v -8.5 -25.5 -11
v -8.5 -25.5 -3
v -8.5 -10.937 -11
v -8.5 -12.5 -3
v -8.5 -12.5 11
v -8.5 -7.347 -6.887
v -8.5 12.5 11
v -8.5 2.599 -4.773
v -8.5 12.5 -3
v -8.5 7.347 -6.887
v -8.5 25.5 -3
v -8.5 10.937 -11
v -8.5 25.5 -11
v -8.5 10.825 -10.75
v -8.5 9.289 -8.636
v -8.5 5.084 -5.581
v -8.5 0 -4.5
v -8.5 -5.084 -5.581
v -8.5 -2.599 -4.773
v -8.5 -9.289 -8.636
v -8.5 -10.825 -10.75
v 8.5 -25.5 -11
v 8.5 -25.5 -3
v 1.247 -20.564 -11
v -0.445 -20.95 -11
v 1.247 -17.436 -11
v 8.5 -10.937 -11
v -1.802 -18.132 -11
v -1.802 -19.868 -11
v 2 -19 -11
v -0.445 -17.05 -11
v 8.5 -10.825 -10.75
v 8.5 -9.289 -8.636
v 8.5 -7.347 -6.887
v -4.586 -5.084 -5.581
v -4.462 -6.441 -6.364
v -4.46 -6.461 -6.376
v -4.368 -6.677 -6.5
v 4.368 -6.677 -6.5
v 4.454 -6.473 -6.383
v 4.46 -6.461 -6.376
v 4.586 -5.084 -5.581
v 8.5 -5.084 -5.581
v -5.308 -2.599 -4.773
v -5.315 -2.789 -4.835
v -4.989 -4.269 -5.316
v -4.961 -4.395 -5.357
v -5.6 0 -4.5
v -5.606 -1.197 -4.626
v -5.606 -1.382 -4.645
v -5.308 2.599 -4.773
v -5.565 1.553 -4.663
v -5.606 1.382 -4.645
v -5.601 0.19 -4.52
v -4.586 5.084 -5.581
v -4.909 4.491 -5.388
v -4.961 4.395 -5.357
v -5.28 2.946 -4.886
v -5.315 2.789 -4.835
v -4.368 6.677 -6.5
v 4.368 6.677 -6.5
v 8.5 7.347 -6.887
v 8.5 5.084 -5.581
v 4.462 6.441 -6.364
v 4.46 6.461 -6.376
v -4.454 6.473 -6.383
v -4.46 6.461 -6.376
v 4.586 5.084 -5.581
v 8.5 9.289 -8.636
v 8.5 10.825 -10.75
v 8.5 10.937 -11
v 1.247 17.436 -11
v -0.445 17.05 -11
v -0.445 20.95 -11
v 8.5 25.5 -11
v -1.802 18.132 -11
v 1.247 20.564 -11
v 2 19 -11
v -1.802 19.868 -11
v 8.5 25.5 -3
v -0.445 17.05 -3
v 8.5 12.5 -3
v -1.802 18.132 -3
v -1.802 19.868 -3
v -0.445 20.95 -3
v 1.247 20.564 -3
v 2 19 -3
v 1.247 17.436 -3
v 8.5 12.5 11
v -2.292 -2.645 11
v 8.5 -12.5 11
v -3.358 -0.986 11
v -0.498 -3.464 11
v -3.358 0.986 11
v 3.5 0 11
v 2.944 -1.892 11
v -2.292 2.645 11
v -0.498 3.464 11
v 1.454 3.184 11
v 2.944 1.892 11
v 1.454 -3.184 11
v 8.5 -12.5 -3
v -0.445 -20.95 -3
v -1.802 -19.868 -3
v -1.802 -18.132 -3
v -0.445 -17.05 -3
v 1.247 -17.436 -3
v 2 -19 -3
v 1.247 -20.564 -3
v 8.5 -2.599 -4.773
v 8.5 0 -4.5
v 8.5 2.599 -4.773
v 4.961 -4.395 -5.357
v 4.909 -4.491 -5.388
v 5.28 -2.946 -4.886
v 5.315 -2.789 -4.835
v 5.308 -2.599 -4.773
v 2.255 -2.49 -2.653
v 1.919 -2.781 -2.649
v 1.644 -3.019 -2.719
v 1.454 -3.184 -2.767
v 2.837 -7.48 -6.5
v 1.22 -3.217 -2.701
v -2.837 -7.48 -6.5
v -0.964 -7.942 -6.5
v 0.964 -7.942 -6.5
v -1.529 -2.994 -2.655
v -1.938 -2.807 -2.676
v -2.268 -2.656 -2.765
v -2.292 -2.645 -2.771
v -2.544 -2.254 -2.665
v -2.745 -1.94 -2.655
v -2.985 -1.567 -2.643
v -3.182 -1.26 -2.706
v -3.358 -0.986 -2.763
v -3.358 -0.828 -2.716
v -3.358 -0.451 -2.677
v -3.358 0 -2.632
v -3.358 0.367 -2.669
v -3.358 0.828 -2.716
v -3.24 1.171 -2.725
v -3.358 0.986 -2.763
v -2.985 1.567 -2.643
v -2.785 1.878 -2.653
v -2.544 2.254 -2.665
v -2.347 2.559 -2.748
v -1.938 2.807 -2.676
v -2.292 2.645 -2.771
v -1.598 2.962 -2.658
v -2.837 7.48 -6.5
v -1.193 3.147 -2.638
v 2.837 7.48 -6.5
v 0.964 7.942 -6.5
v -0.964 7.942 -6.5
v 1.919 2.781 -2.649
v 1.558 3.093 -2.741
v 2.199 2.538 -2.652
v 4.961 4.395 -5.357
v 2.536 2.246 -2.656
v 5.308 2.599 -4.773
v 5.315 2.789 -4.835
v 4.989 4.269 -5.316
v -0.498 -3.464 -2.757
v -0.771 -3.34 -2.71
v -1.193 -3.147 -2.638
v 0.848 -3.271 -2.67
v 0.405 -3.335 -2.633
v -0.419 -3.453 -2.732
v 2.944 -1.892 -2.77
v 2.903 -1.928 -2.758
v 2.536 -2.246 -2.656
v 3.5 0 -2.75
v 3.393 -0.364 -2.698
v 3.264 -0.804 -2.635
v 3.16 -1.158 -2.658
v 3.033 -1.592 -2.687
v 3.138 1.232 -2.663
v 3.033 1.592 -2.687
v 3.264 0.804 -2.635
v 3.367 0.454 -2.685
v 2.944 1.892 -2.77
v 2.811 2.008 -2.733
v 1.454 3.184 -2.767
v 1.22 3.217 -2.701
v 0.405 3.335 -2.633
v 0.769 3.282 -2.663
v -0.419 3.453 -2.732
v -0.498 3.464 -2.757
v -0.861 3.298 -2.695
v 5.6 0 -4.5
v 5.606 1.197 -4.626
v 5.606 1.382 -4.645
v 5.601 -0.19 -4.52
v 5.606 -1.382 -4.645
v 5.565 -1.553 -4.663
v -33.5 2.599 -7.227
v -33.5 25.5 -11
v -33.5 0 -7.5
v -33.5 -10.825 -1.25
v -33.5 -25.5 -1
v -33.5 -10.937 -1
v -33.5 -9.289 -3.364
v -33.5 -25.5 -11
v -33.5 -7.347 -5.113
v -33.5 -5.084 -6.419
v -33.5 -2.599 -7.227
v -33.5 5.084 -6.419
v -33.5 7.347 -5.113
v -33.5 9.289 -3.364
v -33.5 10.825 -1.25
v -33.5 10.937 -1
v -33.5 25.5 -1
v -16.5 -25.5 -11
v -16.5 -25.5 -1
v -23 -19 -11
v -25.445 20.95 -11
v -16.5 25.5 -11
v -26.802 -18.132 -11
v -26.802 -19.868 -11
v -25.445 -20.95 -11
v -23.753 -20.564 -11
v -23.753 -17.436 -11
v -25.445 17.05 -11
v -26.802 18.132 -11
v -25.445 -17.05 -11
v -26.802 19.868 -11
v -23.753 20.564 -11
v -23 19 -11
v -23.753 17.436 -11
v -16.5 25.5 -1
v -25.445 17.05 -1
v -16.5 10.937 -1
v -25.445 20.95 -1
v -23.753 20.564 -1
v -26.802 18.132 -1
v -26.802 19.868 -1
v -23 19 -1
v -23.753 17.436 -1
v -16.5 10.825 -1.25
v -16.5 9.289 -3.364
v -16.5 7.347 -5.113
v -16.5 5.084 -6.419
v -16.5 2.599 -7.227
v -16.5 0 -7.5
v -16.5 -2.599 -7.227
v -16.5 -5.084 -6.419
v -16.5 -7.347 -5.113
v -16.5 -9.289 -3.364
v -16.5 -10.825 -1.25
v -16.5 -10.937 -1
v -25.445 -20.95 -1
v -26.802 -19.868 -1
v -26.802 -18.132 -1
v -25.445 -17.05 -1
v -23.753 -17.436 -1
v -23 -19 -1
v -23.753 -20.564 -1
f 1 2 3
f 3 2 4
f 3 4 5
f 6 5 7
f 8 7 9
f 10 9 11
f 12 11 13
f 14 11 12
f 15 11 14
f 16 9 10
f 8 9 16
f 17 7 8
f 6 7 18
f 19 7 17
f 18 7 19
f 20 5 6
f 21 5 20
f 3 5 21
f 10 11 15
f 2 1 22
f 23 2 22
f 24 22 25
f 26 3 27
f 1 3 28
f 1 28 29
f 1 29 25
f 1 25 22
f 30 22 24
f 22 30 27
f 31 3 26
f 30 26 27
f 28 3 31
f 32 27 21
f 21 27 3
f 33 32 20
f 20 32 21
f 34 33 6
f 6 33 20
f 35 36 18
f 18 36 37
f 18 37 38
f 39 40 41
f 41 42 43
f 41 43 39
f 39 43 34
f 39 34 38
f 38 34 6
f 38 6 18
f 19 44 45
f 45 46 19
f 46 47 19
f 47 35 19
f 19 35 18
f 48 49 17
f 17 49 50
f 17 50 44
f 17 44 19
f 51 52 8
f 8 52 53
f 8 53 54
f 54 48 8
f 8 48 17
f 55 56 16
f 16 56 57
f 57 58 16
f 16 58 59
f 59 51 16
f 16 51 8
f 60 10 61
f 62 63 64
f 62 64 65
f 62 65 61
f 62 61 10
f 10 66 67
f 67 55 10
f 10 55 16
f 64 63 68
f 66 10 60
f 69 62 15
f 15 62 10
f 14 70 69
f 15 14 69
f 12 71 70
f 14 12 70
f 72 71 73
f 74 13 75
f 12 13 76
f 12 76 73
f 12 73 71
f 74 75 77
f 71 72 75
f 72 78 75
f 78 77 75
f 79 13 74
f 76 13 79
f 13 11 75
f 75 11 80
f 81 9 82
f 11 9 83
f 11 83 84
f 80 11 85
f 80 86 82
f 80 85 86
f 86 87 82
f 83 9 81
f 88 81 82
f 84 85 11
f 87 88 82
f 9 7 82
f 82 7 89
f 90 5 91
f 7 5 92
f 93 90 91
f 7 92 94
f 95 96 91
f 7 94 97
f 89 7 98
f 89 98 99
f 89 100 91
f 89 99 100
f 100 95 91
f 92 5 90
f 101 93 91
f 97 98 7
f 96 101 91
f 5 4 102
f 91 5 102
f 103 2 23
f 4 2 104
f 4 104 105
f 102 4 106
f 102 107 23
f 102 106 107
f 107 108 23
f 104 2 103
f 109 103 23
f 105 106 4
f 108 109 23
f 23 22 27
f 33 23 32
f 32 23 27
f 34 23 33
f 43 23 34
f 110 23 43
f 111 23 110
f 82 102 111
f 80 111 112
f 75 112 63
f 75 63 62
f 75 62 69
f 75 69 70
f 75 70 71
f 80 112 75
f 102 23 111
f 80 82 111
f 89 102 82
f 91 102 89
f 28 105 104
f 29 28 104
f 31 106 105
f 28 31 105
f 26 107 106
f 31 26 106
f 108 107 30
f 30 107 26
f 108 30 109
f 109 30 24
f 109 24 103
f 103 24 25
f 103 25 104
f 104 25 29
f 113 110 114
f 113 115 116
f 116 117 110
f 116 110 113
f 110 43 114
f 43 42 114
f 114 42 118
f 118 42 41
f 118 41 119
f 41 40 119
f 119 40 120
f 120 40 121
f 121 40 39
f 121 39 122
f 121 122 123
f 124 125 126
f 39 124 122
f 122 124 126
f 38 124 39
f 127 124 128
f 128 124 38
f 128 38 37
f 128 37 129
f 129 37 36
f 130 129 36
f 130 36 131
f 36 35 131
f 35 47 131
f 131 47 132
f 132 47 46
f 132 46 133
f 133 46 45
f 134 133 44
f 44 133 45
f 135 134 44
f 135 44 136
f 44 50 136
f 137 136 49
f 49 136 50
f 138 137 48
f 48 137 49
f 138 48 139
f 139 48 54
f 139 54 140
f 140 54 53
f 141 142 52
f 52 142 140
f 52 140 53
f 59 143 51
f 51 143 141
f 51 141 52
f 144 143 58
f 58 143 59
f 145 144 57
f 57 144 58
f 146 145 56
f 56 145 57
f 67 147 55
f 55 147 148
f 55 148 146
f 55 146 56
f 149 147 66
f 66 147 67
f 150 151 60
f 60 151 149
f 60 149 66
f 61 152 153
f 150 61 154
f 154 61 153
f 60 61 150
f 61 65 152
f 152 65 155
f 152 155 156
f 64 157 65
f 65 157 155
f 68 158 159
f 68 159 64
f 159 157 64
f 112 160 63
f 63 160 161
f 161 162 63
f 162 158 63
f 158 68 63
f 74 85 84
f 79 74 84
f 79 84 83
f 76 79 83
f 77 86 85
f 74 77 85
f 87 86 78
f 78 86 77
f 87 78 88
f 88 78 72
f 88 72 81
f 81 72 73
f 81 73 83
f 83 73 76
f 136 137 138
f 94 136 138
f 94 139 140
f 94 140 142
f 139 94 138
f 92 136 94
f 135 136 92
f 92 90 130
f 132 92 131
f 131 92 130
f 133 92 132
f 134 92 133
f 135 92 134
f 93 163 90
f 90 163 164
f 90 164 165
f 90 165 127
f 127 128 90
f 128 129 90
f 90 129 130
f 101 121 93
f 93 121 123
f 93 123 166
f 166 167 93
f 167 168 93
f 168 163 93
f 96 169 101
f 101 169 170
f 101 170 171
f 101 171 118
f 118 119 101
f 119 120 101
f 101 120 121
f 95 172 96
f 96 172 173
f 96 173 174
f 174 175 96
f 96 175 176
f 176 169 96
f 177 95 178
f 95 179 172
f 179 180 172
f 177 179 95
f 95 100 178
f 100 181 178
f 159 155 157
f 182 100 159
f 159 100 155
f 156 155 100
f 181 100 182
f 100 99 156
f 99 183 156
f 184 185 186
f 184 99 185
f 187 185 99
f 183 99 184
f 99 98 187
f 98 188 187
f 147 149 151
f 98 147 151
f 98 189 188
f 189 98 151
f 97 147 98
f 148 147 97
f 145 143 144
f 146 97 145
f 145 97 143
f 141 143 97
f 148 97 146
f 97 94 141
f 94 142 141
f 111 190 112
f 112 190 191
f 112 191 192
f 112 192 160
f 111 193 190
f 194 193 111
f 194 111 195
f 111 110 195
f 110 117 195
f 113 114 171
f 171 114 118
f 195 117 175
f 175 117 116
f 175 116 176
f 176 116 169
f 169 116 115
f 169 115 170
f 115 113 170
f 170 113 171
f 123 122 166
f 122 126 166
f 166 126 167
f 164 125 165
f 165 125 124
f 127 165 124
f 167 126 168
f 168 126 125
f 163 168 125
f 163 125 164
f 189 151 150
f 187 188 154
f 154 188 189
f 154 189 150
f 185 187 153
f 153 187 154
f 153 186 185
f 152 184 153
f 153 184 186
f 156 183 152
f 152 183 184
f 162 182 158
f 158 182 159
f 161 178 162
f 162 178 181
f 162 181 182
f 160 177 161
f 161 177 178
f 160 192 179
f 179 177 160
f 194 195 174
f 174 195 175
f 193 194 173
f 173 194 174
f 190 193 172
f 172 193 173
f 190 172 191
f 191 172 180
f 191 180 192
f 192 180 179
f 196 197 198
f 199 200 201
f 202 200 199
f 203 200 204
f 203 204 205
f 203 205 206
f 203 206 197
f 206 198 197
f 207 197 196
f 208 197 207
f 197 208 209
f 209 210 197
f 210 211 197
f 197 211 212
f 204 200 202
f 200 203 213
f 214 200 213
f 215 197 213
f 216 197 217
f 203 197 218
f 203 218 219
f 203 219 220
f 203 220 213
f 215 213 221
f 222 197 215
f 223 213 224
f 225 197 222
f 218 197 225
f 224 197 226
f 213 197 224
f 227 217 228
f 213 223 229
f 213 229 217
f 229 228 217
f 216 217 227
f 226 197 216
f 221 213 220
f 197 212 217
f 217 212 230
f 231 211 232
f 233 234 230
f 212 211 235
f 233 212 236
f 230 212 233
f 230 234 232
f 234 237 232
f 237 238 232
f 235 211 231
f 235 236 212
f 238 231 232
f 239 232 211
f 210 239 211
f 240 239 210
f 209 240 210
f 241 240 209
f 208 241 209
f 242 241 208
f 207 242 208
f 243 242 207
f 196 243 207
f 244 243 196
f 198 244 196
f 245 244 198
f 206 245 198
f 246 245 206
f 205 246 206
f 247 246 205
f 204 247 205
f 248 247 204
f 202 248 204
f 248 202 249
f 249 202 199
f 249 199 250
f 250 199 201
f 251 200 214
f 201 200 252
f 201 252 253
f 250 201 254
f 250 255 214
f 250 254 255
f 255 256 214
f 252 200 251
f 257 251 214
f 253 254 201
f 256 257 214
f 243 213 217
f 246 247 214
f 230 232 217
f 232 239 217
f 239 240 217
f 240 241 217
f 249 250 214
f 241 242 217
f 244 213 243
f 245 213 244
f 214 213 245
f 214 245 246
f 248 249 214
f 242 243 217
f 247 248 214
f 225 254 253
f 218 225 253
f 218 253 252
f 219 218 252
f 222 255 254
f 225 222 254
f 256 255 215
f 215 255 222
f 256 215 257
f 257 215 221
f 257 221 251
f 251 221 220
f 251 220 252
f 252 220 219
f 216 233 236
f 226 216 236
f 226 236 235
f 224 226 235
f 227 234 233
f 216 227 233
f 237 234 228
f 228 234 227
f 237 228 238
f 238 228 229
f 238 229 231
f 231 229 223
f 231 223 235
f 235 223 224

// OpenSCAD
mountHoleRadius = 2;
handleBarRadius = 12.5;


// top part

difference() {
	union() {
		cube([17,25,22],true);
		translate([0,19,-7])
			cube([17,13,8],true);
		translate([0,-19,-7])
			cube([17,13,8],true);
	}

	translate([0,-19,-7])
		cylinder(23,mountHoleRadius,mountHoleRadius,true);
	translate([0,19,-7])
		cylinder(23,mountHoleRadius,mountHoleRadius,true);
	cylinder(50,3.5,3.5,true);
	translate([0,0,-17])
		rotate(a=[0,90,0])
		cylinder(50,handleBarRadius,handleBarRadius,true);

	//coutersunk hole
	color([1, 0, 0,1]) 
		translate([0,0,-4])
		cylinder(5,8,2,true);
}

// bottom part

translate([-25,0,-6]) {
	difference() {
		union() {
			cube([17,51,10],true);
		}

		translate([0,-19,-7])
			cylinder(30,mountHoleRadius,mountHoleRadius,true);
		translate([0,19,-7])
			cylinder(30,mountHoleRadius,mountHoleRadius,true);

		translate([0,0,11])
		rotate(a=[0,90,0])
			cylinder(25,handleBarRadius,handleBarRadius,true);

		}
	}
